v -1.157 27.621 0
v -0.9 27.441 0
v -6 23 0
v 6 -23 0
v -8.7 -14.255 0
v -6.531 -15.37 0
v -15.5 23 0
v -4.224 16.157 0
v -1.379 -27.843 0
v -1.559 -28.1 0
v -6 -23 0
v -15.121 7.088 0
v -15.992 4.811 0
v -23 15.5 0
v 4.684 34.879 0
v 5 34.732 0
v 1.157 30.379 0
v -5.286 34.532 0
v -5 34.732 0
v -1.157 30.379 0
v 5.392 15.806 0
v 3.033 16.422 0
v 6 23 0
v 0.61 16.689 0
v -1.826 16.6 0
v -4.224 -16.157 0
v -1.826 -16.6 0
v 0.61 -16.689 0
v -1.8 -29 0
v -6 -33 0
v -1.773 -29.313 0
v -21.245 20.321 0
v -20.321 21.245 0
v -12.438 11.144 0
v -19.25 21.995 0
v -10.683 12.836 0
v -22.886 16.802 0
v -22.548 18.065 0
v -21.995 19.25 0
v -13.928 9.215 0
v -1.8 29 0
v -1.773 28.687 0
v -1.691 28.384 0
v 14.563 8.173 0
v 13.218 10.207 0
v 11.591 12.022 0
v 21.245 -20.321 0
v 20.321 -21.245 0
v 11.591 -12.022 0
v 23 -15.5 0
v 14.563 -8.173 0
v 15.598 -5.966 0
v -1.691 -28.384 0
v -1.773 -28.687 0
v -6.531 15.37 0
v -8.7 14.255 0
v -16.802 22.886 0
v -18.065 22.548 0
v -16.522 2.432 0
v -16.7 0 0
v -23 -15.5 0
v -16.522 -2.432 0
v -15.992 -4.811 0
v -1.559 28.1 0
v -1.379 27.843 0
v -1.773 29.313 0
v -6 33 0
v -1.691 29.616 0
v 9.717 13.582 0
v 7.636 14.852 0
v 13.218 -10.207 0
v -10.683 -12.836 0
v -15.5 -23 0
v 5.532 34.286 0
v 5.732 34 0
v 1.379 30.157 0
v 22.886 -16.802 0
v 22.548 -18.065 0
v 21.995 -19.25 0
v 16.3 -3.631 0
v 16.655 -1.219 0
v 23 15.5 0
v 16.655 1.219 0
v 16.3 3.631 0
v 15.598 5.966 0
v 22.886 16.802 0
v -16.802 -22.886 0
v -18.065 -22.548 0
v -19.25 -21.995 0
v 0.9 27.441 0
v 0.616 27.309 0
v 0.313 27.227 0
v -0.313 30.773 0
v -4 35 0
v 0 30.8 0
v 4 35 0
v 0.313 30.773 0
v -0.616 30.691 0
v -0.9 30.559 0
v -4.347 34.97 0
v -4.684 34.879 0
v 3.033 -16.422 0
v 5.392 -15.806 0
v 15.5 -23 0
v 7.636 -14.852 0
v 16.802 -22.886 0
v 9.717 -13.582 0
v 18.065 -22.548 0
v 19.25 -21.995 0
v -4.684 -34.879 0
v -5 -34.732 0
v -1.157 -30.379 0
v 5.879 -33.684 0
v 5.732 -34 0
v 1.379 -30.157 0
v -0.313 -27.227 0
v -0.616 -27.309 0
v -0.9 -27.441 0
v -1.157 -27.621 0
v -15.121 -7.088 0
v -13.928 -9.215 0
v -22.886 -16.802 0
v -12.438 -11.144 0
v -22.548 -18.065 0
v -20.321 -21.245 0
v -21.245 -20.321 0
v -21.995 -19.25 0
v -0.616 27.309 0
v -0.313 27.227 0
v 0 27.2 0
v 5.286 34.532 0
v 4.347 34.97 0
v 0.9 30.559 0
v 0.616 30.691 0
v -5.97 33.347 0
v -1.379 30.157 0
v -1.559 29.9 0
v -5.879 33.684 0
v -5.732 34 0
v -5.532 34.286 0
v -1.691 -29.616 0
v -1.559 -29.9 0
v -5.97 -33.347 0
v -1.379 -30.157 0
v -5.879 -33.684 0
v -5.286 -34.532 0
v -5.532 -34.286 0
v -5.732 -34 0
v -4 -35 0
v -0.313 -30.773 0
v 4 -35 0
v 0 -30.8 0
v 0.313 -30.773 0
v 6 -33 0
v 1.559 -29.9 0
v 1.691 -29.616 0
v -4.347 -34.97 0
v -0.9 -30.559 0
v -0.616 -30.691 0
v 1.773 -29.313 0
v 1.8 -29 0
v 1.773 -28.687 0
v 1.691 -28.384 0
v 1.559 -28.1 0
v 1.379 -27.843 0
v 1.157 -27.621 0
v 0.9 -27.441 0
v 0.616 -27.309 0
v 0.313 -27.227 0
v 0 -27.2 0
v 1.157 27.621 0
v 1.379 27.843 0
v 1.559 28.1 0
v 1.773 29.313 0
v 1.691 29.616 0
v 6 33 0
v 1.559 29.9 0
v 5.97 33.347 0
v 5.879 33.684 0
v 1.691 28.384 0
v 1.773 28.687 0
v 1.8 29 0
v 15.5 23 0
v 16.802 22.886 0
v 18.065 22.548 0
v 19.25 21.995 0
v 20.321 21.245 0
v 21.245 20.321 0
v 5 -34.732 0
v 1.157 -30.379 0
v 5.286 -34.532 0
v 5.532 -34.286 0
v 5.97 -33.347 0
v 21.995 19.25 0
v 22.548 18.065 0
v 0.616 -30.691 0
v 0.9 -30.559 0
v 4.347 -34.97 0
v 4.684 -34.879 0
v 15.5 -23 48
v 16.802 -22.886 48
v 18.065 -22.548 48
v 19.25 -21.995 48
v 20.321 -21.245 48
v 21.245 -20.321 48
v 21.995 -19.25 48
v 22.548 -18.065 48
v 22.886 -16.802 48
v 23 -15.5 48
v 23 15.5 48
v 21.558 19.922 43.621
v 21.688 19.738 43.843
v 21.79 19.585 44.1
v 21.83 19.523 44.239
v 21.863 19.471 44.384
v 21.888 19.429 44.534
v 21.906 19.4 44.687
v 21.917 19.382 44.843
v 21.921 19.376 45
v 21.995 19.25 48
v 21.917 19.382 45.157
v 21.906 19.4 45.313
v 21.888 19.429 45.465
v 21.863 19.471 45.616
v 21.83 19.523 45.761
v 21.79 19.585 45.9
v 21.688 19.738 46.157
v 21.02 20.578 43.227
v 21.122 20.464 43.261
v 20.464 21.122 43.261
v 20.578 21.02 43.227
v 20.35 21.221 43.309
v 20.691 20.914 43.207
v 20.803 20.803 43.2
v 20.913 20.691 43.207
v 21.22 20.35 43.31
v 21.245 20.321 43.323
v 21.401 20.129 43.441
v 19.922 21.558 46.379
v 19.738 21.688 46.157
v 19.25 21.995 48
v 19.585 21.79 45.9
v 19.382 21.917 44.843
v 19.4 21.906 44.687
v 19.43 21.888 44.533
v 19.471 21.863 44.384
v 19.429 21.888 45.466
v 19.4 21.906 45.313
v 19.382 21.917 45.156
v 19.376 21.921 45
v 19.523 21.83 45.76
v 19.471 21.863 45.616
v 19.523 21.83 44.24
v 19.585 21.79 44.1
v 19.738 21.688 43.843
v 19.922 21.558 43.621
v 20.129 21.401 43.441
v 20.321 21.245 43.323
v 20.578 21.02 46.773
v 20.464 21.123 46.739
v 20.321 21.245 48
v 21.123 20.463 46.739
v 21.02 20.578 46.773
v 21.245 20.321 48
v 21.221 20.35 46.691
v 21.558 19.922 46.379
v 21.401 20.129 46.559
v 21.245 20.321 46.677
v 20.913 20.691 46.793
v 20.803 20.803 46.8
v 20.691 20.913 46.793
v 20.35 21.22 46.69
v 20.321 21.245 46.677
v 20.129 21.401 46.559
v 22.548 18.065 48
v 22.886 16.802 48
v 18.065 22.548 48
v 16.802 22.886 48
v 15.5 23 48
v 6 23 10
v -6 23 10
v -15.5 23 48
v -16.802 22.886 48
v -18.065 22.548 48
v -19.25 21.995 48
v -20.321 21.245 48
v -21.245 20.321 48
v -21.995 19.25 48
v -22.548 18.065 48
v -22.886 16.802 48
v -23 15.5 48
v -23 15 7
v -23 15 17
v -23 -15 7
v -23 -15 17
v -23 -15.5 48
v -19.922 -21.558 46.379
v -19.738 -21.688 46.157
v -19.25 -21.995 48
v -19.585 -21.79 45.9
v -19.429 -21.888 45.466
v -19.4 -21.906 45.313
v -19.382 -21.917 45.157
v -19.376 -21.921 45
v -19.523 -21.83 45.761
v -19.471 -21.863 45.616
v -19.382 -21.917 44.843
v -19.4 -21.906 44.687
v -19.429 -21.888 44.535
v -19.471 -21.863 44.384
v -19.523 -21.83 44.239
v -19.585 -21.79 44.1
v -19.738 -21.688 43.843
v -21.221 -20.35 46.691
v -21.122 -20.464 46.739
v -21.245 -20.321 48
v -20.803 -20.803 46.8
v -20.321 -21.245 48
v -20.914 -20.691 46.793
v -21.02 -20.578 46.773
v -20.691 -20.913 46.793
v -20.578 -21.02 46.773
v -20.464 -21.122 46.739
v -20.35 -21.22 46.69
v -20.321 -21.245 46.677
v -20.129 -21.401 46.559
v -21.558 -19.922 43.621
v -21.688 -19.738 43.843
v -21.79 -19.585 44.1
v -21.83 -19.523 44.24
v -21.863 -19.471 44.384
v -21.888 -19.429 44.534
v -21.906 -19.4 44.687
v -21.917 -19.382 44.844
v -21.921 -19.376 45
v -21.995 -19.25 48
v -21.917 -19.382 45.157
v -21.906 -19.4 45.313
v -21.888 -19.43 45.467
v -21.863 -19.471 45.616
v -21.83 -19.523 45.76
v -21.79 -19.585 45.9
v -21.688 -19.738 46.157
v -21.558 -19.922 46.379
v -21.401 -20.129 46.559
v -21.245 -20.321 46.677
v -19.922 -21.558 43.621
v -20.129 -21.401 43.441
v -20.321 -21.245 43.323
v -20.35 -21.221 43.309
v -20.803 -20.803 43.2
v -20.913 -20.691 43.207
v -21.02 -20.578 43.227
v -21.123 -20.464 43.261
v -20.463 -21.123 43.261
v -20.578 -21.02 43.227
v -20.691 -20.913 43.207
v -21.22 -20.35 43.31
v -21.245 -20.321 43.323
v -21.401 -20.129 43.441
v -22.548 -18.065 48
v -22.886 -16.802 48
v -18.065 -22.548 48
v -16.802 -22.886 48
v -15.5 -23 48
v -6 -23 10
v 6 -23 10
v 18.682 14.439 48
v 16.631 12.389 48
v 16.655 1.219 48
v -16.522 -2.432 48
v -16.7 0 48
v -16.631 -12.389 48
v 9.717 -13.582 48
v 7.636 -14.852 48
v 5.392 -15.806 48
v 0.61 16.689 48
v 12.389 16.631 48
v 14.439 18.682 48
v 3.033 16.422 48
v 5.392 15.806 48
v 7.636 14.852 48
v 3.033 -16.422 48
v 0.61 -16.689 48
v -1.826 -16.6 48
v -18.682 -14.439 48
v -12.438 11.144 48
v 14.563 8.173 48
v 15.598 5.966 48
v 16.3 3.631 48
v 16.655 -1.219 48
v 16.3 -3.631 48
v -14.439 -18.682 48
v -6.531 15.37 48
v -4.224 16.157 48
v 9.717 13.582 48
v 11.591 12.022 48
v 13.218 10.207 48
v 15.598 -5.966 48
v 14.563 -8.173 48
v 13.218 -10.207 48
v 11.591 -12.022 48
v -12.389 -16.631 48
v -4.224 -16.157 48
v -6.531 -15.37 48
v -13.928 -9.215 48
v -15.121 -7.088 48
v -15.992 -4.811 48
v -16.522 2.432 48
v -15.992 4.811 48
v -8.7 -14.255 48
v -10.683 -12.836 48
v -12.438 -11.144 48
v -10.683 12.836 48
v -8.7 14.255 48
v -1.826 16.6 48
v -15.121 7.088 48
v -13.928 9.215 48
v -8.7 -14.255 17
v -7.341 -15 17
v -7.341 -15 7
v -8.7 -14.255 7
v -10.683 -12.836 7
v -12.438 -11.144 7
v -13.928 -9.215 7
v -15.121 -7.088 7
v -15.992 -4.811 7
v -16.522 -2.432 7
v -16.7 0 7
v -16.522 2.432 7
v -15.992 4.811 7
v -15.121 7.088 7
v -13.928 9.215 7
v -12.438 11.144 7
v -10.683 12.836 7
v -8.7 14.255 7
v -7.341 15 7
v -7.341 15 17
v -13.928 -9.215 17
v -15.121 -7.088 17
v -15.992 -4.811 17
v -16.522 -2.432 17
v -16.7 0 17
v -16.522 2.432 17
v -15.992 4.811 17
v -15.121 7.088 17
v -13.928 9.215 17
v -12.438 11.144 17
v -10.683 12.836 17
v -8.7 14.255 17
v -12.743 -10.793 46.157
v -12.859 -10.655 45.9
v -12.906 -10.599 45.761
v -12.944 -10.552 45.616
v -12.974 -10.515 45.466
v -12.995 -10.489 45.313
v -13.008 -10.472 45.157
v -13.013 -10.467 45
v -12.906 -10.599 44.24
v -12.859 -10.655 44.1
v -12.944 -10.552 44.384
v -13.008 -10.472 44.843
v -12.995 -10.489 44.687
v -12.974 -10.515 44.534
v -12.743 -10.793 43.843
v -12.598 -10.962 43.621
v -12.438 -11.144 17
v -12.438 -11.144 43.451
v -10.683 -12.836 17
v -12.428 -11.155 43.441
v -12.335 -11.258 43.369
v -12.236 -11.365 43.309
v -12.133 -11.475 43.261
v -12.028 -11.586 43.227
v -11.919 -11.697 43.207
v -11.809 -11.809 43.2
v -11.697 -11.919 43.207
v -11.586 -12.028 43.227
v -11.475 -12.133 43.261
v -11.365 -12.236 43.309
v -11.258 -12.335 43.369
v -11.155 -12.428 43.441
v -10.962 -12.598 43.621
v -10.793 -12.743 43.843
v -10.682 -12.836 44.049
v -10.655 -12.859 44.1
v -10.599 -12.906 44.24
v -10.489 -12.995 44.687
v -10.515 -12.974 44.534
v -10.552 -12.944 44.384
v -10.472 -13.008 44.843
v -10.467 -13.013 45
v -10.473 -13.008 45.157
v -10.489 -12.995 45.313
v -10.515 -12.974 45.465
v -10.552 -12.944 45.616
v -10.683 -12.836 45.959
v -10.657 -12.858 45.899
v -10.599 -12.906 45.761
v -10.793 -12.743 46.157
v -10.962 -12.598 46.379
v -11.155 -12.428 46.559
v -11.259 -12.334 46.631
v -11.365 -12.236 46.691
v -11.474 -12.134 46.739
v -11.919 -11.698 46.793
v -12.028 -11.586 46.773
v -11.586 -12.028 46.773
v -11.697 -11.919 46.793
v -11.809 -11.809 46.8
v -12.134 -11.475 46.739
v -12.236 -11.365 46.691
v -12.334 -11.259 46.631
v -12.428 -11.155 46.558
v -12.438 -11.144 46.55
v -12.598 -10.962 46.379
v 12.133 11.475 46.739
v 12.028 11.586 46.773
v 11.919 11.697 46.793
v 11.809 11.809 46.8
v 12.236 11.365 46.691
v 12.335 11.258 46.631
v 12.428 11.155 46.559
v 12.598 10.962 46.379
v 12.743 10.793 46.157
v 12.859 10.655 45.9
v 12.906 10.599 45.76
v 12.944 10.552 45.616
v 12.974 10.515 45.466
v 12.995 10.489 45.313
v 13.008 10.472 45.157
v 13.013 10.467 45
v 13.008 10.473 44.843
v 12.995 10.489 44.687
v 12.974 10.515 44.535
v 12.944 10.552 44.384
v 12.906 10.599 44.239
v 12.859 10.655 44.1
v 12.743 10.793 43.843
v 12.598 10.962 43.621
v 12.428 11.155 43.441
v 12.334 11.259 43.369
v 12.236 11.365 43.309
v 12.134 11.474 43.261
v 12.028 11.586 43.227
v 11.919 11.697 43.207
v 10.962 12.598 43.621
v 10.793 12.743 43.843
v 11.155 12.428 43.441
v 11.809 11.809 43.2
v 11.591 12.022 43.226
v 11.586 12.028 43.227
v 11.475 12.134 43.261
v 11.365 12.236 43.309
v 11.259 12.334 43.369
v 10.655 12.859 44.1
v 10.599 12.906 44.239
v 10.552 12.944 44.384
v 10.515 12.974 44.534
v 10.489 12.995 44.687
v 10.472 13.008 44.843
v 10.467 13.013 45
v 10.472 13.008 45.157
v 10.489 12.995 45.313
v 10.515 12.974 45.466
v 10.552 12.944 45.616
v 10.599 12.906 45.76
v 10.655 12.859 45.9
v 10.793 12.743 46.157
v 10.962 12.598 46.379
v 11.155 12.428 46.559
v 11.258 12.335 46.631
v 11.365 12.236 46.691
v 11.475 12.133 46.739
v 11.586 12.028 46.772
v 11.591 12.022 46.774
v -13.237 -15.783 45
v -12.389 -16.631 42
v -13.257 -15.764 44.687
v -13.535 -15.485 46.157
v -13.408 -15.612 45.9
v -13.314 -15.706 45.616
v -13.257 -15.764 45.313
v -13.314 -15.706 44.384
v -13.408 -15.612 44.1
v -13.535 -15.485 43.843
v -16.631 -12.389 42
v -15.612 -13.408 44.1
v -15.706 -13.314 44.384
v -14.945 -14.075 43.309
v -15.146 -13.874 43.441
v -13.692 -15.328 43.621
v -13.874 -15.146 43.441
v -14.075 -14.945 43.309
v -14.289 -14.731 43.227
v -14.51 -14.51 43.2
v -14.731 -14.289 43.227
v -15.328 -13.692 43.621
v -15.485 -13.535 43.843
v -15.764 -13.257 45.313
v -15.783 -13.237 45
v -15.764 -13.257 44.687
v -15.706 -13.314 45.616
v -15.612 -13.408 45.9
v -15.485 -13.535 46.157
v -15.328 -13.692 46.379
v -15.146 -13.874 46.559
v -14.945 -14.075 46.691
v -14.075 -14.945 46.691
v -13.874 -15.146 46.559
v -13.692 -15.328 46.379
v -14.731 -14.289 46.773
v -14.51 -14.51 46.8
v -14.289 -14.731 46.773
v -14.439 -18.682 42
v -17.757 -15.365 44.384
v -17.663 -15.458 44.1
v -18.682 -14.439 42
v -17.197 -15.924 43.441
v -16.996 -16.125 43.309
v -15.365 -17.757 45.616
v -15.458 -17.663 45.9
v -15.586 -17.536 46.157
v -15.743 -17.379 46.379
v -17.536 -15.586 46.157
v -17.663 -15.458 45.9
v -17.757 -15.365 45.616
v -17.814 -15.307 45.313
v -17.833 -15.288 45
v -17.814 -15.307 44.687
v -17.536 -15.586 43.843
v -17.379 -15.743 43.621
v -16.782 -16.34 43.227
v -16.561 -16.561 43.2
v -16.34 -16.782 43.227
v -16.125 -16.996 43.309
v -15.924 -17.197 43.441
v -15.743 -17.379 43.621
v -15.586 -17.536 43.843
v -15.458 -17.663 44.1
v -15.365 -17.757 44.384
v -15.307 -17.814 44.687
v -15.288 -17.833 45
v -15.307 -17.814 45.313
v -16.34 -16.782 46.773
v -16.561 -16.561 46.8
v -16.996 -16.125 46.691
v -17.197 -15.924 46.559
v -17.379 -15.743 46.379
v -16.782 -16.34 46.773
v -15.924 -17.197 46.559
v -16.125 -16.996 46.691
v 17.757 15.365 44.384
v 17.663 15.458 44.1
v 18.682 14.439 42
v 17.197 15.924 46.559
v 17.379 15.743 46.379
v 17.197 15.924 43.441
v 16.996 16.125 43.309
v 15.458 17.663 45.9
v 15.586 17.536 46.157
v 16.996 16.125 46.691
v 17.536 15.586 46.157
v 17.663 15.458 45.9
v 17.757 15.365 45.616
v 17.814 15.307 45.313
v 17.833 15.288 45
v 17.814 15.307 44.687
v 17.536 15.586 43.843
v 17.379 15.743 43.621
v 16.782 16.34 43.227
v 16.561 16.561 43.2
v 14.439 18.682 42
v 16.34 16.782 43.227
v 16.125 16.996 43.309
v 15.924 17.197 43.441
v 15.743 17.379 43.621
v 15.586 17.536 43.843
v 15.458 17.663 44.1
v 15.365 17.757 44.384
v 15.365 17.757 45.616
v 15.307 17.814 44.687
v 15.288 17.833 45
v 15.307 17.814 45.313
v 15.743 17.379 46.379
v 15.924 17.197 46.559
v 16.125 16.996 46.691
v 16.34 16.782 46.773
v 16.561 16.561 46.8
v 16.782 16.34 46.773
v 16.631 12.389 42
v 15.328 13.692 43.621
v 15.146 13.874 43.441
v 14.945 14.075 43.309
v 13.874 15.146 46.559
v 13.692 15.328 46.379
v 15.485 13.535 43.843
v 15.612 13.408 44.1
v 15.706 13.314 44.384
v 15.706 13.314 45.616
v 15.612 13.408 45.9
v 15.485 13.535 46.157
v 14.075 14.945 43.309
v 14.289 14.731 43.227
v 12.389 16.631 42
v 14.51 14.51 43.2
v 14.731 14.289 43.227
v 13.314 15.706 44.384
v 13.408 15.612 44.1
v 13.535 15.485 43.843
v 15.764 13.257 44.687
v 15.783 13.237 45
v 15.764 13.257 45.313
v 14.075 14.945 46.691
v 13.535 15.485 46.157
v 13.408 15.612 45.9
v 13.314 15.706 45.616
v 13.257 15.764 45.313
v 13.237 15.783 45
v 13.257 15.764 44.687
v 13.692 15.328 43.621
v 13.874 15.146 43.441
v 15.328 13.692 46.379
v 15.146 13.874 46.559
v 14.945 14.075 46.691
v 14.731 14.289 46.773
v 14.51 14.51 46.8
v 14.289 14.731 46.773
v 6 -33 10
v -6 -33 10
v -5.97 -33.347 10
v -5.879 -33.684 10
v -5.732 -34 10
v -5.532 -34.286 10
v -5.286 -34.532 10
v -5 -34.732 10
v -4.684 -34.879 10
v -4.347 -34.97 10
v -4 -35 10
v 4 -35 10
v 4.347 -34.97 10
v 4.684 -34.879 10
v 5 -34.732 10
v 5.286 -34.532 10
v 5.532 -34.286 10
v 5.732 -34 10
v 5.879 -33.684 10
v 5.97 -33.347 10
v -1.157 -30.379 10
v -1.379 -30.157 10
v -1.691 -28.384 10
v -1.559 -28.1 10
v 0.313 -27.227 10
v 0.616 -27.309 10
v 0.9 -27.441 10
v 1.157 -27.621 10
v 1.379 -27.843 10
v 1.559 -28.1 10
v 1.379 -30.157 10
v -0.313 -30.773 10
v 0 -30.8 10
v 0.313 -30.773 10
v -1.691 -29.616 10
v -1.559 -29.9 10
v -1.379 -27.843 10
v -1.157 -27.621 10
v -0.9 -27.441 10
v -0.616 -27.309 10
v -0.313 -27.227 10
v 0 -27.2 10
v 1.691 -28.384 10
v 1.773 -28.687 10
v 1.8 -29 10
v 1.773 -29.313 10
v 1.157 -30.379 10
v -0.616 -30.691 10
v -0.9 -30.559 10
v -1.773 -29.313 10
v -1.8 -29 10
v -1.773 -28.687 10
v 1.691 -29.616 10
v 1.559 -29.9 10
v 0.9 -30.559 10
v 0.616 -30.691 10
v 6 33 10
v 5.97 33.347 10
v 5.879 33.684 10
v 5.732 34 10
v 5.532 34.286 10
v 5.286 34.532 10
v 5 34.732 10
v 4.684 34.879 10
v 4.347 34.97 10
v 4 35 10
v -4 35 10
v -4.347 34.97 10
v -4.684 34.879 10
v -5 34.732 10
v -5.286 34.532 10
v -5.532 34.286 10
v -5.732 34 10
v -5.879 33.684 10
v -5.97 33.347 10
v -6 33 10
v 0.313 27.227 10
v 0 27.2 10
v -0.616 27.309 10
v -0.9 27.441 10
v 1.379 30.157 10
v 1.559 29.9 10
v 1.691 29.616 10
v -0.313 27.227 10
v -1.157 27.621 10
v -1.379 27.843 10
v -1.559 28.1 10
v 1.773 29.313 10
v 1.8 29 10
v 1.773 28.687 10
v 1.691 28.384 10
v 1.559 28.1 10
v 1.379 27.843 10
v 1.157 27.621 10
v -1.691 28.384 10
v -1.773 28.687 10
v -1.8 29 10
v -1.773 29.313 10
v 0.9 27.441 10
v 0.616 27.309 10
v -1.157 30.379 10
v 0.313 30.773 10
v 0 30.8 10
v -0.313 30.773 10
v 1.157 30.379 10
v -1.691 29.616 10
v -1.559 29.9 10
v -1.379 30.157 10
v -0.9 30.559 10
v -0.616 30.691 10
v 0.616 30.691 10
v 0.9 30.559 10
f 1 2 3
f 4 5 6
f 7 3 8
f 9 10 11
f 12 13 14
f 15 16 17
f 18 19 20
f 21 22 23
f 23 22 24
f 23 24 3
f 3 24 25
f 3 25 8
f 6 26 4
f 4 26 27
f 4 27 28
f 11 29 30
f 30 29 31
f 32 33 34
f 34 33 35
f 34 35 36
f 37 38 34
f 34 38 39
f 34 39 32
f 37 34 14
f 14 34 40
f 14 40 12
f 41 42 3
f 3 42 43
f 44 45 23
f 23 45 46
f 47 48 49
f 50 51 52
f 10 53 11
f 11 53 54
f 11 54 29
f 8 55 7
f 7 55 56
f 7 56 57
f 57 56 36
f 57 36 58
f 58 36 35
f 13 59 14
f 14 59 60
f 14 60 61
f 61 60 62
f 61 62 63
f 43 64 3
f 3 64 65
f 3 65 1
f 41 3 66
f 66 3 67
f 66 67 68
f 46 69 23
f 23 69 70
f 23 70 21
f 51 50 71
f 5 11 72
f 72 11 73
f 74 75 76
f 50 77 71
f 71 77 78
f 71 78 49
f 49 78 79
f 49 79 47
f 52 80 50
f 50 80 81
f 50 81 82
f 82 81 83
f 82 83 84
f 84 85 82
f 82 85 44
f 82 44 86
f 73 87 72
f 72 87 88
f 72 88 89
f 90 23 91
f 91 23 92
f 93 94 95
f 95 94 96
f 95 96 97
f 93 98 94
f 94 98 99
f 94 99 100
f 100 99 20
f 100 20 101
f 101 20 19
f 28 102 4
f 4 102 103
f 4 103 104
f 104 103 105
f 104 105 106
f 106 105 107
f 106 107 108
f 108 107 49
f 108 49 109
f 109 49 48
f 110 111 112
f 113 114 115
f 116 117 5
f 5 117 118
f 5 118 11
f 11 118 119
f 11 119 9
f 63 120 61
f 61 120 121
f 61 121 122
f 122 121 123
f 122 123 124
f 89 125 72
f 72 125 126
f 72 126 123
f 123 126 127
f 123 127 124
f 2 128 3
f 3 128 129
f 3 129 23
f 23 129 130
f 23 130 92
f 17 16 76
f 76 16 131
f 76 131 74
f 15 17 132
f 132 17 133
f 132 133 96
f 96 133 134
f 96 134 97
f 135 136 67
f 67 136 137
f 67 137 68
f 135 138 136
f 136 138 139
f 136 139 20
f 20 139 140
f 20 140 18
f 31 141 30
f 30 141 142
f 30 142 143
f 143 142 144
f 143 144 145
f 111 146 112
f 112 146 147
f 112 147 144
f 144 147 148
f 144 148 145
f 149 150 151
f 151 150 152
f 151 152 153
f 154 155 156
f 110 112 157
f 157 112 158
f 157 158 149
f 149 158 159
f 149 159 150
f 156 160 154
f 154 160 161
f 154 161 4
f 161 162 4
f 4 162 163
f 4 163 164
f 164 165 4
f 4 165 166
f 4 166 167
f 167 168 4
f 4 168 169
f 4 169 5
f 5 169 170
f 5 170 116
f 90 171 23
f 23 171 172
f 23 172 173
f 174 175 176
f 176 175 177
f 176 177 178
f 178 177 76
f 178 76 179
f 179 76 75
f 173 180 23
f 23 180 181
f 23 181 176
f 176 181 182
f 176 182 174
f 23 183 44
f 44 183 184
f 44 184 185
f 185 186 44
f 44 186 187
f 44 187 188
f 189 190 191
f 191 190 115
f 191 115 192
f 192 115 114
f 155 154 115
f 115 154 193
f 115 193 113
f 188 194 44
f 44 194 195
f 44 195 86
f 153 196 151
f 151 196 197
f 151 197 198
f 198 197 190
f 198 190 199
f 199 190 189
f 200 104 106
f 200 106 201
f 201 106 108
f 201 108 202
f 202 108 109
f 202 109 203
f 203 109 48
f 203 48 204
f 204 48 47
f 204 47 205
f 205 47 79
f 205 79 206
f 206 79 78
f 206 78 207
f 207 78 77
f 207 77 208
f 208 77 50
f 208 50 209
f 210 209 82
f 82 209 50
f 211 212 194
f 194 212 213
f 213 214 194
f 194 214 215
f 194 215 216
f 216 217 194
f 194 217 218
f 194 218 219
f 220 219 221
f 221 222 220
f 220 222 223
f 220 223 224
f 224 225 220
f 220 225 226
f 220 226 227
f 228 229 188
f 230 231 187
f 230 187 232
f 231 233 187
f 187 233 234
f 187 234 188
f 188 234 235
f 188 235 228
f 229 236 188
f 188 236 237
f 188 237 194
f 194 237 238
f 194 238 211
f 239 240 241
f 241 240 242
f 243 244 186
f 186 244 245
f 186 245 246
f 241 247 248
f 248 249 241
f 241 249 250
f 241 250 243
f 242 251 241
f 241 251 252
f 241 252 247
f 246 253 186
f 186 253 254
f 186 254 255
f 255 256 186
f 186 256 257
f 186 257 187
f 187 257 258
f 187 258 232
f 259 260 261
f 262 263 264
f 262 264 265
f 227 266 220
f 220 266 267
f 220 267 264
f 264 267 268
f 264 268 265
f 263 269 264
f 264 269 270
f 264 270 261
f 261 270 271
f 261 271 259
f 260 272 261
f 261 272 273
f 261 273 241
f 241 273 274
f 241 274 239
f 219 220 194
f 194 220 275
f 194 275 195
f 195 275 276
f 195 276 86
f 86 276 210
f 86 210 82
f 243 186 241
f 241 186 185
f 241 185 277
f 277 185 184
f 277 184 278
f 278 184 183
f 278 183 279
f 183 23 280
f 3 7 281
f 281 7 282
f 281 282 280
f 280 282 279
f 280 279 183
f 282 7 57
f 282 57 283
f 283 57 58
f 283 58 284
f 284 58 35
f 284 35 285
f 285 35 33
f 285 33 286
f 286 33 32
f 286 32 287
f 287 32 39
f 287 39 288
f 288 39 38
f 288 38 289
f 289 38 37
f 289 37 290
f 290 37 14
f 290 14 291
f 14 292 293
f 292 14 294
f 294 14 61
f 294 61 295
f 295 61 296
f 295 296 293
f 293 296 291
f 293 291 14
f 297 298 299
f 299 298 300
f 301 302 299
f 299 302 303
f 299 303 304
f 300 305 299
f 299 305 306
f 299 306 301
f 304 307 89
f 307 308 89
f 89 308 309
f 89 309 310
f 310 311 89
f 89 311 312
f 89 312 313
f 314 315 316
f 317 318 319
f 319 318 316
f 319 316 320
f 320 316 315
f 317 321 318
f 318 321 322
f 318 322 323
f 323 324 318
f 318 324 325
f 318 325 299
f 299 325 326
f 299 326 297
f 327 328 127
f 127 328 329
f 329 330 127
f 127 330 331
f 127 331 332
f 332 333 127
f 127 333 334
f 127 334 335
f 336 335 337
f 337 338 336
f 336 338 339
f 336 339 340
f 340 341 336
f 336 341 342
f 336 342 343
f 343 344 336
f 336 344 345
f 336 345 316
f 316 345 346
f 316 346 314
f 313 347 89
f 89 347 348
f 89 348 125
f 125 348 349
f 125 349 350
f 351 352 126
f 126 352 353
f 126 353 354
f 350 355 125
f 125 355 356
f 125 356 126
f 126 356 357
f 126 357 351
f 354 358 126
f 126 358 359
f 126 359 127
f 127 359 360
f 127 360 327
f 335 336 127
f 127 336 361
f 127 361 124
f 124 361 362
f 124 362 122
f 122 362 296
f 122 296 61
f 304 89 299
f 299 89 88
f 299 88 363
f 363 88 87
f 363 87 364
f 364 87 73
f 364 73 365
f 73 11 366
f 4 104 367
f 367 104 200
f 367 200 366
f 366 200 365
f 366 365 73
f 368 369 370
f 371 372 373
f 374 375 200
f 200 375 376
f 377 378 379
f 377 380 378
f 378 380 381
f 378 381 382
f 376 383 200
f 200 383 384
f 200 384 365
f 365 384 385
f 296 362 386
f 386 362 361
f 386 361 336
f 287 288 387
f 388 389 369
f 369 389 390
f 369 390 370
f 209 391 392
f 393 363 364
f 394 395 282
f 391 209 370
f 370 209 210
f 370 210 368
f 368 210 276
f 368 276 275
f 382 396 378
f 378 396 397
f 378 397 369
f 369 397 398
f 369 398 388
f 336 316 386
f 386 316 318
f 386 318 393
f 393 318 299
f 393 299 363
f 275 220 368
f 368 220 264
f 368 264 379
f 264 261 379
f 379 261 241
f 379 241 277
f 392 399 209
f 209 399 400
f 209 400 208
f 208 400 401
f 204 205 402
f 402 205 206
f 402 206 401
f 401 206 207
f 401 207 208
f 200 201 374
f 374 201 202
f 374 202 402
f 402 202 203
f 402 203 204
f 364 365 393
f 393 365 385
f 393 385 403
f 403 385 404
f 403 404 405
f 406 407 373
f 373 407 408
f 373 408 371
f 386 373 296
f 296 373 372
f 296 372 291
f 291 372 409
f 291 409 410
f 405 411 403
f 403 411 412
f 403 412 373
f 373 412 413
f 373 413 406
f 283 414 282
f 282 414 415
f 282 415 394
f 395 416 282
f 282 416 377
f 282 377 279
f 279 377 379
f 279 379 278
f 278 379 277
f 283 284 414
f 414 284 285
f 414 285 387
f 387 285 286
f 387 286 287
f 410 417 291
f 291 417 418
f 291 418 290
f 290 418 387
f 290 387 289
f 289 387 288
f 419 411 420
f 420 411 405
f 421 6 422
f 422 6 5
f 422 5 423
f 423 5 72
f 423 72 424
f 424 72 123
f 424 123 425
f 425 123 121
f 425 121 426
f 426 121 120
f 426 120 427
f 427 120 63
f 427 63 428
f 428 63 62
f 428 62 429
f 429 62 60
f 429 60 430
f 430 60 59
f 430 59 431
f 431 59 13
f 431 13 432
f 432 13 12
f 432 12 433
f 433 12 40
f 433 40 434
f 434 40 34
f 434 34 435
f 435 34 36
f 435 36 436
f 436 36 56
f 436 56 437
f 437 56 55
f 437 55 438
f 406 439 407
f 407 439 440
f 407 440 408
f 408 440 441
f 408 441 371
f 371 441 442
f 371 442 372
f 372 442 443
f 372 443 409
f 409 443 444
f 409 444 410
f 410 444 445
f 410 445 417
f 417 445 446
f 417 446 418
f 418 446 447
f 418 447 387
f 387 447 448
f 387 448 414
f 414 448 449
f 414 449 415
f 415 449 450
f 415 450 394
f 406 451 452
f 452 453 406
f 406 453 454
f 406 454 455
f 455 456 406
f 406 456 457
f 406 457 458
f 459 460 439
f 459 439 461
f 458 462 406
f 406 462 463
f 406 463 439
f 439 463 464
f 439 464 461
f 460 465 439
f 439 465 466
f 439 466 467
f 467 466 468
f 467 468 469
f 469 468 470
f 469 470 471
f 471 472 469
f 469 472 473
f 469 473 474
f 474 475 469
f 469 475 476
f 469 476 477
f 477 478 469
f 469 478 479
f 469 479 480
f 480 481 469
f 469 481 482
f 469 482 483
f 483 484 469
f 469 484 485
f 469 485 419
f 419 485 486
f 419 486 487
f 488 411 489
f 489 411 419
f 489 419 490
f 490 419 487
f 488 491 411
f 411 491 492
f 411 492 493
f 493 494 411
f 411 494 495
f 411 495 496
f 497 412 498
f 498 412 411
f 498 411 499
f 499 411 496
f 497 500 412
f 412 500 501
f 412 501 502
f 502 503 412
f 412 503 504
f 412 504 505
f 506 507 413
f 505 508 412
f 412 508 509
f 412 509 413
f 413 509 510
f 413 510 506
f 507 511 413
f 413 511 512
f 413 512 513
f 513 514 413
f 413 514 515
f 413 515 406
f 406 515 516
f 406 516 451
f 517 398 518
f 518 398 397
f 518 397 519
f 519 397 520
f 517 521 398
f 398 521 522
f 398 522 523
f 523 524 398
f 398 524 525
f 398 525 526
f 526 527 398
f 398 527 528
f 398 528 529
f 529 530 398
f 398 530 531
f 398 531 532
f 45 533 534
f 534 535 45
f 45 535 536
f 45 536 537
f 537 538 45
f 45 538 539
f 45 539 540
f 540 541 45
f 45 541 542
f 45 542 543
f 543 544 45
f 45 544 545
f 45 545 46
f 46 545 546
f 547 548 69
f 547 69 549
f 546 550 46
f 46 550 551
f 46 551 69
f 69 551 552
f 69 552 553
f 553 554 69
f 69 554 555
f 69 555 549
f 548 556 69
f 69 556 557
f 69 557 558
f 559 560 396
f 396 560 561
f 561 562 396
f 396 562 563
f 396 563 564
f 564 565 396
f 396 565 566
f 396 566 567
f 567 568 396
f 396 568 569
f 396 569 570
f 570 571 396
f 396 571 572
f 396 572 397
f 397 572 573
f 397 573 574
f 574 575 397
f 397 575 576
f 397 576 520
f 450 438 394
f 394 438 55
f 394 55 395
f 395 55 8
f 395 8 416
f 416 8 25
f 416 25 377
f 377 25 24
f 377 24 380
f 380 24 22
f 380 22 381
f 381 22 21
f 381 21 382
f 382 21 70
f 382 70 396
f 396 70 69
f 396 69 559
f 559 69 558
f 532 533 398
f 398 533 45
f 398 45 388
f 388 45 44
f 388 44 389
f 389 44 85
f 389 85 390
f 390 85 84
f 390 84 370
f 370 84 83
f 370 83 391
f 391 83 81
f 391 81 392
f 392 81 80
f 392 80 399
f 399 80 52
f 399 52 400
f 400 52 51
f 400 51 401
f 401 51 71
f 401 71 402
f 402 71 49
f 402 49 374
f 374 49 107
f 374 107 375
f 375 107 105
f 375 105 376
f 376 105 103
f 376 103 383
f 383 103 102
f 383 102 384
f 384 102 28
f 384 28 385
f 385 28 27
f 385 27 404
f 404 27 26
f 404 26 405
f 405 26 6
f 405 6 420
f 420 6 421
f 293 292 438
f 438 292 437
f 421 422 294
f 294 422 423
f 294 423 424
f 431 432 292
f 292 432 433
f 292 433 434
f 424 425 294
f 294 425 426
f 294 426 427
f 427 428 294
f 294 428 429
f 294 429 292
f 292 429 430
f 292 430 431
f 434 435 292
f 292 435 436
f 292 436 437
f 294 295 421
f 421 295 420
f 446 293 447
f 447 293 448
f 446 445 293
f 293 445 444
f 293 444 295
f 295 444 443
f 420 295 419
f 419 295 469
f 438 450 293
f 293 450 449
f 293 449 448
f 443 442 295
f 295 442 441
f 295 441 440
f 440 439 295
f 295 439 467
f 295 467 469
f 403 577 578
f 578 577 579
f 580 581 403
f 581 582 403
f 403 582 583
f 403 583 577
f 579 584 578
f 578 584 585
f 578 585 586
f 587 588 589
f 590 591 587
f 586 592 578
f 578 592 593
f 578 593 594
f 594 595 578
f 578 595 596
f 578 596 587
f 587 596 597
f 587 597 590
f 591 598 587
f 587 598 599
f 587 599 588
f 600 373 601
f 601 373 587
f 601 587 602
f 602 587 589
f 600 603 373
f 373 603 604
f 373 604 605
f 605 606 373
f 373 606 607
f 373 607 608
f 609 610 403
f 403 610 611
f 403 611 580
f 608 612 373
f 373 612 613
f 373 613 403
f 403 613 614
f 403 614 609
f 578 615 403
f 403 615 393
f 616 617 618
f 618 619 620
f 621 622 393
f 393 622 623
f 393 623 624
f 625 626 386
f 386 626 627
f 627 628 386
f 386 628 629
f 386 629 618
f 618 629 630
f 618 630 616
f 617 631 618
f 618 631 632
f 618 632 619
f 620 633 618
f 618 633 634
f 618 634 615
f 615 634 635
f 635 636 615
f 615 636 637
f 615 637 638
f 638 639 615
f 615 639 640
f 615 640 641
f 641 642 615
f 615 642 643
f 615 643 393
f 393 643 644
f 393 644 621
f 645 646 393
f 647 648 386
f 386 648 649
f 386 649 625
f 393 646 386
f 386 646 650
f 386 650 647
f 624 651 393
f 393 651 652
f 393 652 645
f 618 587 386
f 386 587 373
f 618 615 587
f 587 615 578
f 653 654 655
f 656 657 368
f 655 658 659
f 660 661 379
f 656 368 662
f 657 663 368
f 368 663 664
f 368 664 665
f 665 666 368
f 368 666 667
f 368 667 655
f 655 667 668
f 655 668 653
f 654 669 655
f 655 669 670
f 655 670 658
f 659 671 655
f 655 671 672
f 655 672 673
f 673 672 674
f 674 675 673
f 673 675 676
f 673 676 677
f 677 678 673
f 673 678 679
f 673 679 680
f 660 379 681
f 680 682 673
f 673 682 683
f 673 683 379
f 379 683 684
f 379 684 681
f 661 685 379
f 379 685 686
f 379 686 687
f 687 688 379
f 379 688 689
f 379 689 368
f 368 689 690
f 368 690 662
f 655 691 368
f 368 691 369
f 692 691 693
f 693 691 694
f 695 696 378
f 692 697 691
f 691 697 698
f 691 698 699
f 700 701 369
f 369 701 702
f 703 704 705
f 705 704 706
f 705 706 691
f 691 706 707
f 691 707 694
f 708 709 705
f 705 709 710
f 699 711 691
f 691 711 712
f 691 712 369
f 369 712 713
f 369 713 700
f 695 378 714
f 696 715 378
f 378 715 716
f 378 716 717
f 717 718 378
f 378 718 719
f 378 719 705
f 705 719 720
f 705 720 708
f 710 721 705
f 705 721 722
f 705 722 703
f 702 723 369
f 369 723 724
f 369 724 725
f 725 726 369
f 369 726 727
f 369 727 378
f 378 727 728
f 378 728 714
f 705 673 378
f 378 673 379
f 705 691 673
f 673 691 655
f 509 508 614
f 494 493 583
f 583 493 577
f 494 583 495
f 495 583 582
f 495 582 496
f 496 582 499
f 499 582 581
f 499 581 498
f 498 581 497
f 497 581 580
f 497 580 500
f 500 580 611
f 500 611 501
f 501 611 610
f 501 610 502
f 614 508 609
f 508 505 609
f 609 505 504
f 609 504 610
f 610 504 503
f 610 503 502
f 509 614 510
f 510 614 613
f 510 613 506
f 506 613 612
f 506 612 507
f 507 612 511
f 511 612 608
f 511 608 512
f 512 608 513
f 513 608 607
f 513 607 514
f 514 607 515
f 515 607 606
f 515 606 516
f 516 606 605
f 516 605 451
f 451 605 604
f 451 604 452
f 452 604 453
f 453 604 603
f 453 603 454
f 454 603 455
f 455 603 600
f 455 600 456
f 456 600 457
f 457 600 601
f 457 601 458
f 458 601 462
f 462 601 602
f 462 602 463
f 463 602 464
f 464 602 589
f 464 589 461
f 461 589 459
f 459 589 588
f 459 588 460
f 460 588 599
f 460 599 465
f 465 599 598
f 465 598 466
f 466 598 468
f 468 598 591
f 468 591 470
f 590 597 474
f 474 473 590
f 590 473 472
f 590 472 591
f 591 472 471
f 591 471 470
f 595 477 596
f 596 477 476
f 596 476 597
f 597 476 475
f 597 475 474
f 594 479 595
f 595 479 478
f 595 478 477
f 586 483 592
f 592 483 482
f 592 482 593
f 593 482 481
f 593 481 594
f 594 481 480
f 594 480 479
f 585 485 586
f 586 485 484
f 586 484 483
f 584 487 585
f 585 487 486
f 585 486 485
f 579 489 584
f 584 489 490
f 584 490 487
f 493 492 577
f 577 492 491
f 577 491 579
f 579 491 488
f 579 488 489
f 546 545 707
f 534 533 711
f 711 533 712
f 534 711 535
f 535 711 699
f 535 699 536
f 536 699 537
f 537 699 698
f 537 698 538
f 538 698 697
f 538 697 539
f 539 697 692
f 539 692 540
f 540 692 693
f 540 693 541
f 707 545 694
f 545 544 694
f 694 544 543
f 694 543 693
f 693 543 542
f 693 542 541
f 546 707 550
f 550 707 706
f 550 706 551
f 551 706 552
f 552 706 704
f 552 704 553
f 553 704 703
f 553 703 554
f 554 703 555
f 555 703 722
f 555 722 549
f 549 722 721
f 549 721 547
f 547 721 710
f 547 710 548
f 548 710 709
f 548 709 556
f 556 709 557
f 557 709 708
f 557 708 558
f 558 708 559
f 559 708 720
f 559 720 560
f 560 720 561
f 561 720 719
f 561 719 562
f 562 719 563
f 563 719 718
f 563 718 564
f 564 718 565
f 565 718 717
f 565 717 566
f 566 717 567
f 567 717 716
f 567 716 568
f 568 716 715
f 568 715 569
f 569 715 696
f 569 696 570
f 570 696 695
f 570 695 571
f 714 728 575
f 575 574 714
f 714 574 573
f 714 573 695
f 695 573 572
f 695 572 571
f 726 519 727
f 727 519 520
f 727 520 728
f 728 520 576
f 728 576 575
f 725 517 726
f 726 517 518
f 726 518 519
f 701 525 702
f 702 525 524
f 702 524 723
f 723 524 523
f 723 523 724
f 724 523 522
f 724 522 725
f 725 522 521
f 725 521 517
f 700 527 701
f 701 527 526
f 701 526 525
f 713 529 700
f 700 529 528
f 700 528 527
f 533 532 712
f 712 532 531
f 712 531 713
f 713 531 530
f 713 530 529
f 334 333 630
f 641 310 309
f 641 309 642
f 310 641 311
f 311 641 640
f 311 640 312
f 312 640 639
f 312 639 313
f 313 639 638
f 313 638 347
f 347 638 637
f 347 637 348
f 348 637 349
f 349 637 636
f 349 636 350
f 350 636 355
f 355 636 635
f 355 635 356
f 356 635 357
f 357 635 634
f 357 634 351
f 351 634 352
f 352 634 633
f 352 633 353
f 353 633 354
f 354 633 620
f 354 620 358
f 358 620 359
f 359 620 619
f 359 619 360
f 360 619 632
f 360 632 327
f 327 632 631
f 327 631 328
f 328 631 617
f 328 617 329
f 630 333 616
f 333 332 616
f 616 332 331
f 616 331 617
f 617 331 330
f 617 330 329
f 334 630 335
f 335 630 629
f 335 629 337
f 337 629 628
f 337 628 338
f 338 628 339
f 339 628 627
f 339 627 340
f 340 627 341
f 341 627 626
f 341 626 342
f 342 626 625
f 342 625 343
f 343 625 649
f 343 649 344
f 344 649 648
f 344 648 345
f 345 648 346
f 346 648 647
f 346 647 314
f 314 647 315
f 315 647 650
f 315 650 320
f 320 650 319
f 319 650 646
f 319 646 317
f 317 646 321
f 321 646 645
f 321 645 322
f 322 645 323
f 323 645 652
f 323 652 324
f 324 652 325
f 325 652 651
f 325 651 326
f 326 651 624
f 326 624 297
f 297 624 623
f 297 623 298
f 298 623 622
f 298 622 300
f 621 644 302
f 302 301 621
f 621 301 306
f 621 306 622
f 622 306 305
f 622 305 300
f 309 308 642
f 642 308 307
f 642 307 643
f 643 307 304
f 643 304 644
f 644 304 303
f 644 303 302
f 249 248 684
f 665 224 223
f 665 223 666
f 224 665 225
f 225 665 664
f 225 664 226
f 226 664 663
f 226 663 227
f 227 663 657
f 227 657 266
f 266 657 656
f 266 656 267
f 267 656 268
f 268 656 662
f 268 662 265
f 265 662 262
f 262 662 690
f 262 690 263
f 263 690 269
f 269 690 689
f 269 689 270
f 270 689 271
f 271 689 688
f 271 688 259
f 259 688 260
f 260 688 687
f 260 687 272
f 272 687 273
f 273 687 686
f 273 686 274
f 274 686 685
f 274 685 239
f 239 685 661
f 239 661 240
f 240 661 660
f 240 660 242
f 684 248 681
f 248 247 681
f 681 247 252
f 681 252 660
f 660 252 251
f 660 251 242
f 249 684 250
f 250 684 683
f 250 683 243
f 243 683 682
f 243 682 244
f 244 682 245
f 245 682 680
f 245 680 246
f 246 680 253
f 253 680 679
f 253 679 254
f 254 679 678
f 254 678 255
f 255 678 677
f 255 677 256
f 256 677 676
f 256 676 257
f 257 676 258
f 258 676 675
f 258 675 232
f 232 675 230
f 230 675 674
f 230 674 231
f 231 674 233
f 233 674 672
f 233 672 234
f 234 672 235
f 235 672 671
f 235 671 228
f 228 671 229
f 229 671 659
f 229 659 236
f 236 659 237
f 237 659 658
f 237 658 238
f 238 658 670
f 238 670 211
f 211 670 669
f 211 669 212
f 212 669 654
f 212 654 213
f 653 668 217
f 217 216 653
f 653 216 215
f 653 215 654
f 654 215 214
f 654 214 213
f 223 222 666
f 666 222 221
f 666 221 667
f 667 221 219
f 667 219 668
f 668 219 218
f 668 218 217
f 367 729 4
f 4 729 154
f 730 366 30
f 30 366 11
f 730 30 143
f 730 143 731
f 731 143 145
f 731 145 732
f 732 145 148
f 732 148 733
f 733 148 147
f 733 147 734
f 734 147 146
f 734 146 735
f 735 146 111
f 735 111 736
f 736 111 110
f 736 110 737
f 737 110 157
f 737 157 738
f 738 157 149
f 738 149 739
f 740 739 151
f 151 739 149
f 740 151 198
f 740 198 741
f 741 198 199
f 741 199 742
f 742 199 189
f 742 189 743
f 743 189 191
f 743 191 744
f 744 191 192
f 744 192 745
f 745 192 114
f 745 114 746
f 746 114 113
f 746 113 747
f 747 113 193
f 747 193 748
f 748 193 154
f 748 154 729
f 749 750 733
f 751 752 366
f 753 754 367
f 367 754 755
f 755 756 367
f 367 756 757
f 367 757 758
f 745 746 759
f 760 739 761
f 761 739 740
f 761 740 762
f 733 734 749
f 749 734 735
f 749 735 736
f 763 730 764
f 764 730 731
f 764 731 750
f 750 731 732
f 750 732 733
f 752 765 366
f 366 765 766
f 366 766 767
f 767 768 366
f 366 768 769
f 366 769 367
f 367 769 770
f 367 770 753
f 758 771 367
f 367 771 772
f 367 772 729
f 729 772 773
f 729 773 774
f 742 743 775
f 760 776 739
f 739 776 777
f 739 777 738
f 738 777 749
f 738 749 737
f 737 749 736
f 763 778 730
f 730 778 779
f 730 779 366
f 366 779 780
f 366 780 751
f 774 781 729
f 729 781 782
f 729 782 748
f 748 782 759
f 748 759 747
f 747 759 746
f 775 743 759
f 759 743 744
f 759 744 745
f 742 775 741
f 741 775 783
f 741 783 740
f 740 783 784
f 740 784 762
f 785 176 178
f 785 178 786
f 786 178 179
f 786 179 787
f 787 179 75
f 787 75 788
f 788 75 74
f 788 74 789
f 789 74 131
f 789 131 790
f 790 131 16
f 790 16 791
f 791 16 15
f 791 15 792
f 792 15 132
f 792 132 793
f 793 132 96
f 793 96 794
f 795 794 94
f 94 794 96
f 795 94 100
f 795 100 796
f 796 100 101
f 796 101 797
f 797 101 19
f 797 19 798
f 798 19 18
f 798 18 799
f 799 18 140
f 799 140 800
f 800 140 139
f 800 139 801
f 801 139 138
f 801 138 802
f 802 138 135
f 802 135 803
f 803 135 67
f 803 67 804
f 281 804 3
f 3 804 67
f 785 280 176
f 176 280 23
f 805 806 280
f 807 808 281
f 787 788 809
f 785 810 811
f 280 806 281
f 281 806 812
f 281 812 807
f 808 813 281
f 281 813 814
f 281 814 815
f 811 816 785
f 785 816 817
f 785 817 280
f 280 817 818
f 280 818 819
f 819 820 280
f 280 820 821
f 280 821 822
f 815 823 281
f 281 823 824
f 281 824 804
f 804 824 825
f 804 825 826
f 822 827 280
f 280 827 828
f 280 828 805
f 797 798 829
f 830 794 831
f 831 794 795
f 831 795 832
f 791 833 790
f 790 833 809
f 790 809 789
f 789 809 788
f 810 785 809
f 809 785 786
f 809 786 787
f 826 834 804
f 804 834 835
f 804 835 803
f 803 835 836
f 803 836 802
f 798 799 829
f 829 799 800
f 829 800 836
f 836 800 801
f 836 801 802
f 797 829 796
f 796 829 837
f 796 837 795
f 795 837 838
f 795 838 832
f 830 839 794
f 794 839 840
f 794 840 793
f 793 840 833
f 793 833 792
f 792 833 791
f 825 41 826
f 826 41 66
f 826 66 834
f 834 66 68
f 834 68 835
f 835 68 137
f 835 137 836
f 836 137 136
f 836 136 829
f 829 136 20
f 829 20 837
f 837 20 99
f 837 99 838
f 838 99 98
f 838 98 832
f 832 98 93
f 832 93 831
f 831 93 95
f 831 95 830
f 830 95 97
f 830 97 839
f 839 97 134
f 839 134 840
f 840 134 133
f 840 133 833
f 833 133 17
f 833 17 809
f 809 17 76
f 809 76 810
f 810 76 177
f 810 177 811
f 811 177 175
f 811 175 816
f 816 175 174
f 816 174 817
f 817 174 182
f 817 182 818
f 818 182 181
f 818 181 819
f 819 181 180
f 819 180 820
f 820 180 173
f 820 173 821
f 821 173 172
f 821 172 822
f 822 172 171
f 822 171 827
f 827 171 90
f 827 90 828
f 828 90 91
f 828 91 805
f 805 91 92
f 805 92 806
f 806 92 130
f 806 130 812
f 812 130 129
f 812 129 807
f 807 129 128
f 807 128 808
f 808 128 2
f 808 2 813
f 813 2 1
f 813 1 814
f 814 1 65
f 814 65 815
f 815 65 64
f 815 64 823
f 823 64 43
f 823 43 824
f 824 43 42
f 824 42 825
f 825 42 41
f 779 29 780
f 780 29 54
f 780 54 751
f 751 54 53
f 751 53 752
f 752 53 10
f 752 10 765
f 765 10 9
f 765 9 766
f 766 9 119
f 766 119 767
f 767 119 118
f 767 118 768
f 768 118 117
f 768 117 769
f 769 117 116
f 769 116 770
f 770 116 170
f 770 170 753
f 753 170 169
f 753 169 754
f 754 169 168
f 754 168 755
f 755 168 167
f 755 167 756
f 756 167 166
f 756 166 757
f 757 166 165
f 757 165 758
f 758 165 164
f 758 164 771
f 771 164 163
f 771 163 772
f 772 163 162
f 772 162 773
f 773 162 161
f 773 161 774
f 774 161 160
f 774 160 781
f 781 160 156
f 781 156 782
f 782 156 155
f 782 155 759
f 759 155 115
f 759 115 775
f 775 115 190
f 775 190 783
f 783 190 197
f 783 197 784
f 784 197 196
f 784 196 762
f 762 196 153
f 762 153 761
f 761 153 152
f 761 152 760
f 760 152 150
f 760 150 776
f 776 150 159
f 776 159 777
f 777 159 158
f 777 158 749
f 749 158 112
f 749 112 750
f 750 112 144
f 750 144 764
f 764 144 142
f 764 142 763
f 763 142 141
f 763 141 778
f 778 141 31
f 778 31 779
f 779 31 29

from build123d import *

# Parameters (mm, degrees)
MAIN_DEPTH           = 48
SKETCH2_R            = 16.7
MOTOR_HOLE_DEPTH     = 49
PULLEY_OUT_REACH     = 48
SKETCH3_W            = 10
SKETCH3_H            = 30
NUTS_DEPTH           = 6
M3_CLEARANCE_HOLE1_D = 3.6
BOSS_EXTRUDE2_DEPTH  = 10
M3_CLEARANCE_HOLE2_D = 3.6


with BuildPart() as part:
    # Sketch1 → Main (new body)
    with BuildSketch(Plane.XY):
        with BuildLine():
            Line((-15.5, 23), (15.5, 23))
            ThreePointArc((15.5, 23), (20.803300859, 20.803300859), (23, 15.5))
            Line((23, 15.5), (23, -15.5))
            ThreePointArc((23, -15.5), (20.803300859, -20.803300859), (15.5, -23))
            Line((15.5, -23), (-15.5, -23))
            ThreePointArc((-15.5, -23), (-20.803300859, -20.803300859), (-23, -15.5))
            Line((-23, -15.5), (-23, 15.5))
            ThreePointArc((-23, 15.5), (-20.803300859, 20.803300859), (-15.5, 23))
        make_face()
    extrude(amount=MAIN_DEPTH)

    # Sketch2 → Motor Hole (cut, through all)
    with BuildSketch(Plane(origin=(0, 0, 0), x_dir=(-1, 0, 0), z_dir=(0, 0, -1))):
        Circle(SKETCH2_R)
    extrude(amount=-MOTOR_HOLE_DEPTH, mode=Mode.SUBTRACT)

    # Sketch3 → Pulley Out (cut, up to next)
    with BuildSketch(Plane.ZY.offset(23), mode=Mode.PRIVATE) as pulley_out_sk1:
        with Locations((12, 0)):
            Rectangle(SKETCH3_W, SKETCH3_H)
    pulley_out_tool1 = extrude(pulley_out_sk1.sketch, amount=-PULLEY_OUT_REACH, mode=Mode.PRIVATE) & part.part
    add(pulley_out_tool1.solids().sort_by_distance((-23, 0, 12))[0], mode=Mode.SUBTRACT)

    # Sketch9 → Nuts (cut)
    with BuildSketch(Plane.XY.offset(48)):
        Polygon((-18.681980515, -14.439339828), (-16.63137085, -12.388730163), (-12.388730163, -16.63137085), (-14.439339828, -18.681980515), align=None)
        Polygon((18.681980515, 14.439339828), (16.63137085, 12.388730163), (12.388730163, 16.63137085), (14.439339828, 18.681980515), align=None)
    extrude(amount=-NUTS_DEPTH, mode=Mode.SUBTRACT)

    # M3 Clearance Hole1 (through all)
    with Locations(Plane(origin=(-20.803300859, -20.803300859, 45), x_dir=(-0.707106781, 0.707106781, 0), z_dir=(-0.707106781, -0.707106781, 0))):
        with Locations((0, 0)):
            Hole(M3_CLEARANCE_HOLE1_D / 2)

    # Sketch15 → Boss-Extrude2 (add)
    with BuildSketch(Plane(origin=(0, 0, 0), x_dir=(-1, 0, 0), z_dir=(0, 0, -1))):
        with BuildLine():
            Line((-6, -23), (6, -23))
            Line((6, -23), (6, -33))
            ThreePointArc((6, -33), (5.414213562, -34.414213562), (4, -35))
            Line((4, -35), (-4, -35))
            ThreePointArc((-4, -35), (-5.414213562, -34.414213562), (-6, -33))
            Line((-6, -33), (-6, -23))
        make_face()
        with BuildLine():
            Line((-4, 35), (4, 35))
            ThreePointArc((4, 35), (5.414213562, 34.414213562), (6, 33))
            Line((6, 33), (6, 23))
            Line((6, 23), (-6, 23))
            Line((-6, 23), (-6, 33))
            ThreePointArc((-6, 33), (-5.414213562, 34.414213562), (-4, 35))
        make_face()
    extrude(amount=-BOSS_EXTRUDE2_DEPTH)

    # M3 Clearance Hole2 (through all)
    with Locations(Plane(origin=(0, 0, 0), x_dir=(-1, 0, 0), z_dir=(0, 0, -1))):
        with Locations((0, -29), (0, 29)):
            Hole(M3_CLEARANCE_HOLE2_D / 2)


solid = part.part
